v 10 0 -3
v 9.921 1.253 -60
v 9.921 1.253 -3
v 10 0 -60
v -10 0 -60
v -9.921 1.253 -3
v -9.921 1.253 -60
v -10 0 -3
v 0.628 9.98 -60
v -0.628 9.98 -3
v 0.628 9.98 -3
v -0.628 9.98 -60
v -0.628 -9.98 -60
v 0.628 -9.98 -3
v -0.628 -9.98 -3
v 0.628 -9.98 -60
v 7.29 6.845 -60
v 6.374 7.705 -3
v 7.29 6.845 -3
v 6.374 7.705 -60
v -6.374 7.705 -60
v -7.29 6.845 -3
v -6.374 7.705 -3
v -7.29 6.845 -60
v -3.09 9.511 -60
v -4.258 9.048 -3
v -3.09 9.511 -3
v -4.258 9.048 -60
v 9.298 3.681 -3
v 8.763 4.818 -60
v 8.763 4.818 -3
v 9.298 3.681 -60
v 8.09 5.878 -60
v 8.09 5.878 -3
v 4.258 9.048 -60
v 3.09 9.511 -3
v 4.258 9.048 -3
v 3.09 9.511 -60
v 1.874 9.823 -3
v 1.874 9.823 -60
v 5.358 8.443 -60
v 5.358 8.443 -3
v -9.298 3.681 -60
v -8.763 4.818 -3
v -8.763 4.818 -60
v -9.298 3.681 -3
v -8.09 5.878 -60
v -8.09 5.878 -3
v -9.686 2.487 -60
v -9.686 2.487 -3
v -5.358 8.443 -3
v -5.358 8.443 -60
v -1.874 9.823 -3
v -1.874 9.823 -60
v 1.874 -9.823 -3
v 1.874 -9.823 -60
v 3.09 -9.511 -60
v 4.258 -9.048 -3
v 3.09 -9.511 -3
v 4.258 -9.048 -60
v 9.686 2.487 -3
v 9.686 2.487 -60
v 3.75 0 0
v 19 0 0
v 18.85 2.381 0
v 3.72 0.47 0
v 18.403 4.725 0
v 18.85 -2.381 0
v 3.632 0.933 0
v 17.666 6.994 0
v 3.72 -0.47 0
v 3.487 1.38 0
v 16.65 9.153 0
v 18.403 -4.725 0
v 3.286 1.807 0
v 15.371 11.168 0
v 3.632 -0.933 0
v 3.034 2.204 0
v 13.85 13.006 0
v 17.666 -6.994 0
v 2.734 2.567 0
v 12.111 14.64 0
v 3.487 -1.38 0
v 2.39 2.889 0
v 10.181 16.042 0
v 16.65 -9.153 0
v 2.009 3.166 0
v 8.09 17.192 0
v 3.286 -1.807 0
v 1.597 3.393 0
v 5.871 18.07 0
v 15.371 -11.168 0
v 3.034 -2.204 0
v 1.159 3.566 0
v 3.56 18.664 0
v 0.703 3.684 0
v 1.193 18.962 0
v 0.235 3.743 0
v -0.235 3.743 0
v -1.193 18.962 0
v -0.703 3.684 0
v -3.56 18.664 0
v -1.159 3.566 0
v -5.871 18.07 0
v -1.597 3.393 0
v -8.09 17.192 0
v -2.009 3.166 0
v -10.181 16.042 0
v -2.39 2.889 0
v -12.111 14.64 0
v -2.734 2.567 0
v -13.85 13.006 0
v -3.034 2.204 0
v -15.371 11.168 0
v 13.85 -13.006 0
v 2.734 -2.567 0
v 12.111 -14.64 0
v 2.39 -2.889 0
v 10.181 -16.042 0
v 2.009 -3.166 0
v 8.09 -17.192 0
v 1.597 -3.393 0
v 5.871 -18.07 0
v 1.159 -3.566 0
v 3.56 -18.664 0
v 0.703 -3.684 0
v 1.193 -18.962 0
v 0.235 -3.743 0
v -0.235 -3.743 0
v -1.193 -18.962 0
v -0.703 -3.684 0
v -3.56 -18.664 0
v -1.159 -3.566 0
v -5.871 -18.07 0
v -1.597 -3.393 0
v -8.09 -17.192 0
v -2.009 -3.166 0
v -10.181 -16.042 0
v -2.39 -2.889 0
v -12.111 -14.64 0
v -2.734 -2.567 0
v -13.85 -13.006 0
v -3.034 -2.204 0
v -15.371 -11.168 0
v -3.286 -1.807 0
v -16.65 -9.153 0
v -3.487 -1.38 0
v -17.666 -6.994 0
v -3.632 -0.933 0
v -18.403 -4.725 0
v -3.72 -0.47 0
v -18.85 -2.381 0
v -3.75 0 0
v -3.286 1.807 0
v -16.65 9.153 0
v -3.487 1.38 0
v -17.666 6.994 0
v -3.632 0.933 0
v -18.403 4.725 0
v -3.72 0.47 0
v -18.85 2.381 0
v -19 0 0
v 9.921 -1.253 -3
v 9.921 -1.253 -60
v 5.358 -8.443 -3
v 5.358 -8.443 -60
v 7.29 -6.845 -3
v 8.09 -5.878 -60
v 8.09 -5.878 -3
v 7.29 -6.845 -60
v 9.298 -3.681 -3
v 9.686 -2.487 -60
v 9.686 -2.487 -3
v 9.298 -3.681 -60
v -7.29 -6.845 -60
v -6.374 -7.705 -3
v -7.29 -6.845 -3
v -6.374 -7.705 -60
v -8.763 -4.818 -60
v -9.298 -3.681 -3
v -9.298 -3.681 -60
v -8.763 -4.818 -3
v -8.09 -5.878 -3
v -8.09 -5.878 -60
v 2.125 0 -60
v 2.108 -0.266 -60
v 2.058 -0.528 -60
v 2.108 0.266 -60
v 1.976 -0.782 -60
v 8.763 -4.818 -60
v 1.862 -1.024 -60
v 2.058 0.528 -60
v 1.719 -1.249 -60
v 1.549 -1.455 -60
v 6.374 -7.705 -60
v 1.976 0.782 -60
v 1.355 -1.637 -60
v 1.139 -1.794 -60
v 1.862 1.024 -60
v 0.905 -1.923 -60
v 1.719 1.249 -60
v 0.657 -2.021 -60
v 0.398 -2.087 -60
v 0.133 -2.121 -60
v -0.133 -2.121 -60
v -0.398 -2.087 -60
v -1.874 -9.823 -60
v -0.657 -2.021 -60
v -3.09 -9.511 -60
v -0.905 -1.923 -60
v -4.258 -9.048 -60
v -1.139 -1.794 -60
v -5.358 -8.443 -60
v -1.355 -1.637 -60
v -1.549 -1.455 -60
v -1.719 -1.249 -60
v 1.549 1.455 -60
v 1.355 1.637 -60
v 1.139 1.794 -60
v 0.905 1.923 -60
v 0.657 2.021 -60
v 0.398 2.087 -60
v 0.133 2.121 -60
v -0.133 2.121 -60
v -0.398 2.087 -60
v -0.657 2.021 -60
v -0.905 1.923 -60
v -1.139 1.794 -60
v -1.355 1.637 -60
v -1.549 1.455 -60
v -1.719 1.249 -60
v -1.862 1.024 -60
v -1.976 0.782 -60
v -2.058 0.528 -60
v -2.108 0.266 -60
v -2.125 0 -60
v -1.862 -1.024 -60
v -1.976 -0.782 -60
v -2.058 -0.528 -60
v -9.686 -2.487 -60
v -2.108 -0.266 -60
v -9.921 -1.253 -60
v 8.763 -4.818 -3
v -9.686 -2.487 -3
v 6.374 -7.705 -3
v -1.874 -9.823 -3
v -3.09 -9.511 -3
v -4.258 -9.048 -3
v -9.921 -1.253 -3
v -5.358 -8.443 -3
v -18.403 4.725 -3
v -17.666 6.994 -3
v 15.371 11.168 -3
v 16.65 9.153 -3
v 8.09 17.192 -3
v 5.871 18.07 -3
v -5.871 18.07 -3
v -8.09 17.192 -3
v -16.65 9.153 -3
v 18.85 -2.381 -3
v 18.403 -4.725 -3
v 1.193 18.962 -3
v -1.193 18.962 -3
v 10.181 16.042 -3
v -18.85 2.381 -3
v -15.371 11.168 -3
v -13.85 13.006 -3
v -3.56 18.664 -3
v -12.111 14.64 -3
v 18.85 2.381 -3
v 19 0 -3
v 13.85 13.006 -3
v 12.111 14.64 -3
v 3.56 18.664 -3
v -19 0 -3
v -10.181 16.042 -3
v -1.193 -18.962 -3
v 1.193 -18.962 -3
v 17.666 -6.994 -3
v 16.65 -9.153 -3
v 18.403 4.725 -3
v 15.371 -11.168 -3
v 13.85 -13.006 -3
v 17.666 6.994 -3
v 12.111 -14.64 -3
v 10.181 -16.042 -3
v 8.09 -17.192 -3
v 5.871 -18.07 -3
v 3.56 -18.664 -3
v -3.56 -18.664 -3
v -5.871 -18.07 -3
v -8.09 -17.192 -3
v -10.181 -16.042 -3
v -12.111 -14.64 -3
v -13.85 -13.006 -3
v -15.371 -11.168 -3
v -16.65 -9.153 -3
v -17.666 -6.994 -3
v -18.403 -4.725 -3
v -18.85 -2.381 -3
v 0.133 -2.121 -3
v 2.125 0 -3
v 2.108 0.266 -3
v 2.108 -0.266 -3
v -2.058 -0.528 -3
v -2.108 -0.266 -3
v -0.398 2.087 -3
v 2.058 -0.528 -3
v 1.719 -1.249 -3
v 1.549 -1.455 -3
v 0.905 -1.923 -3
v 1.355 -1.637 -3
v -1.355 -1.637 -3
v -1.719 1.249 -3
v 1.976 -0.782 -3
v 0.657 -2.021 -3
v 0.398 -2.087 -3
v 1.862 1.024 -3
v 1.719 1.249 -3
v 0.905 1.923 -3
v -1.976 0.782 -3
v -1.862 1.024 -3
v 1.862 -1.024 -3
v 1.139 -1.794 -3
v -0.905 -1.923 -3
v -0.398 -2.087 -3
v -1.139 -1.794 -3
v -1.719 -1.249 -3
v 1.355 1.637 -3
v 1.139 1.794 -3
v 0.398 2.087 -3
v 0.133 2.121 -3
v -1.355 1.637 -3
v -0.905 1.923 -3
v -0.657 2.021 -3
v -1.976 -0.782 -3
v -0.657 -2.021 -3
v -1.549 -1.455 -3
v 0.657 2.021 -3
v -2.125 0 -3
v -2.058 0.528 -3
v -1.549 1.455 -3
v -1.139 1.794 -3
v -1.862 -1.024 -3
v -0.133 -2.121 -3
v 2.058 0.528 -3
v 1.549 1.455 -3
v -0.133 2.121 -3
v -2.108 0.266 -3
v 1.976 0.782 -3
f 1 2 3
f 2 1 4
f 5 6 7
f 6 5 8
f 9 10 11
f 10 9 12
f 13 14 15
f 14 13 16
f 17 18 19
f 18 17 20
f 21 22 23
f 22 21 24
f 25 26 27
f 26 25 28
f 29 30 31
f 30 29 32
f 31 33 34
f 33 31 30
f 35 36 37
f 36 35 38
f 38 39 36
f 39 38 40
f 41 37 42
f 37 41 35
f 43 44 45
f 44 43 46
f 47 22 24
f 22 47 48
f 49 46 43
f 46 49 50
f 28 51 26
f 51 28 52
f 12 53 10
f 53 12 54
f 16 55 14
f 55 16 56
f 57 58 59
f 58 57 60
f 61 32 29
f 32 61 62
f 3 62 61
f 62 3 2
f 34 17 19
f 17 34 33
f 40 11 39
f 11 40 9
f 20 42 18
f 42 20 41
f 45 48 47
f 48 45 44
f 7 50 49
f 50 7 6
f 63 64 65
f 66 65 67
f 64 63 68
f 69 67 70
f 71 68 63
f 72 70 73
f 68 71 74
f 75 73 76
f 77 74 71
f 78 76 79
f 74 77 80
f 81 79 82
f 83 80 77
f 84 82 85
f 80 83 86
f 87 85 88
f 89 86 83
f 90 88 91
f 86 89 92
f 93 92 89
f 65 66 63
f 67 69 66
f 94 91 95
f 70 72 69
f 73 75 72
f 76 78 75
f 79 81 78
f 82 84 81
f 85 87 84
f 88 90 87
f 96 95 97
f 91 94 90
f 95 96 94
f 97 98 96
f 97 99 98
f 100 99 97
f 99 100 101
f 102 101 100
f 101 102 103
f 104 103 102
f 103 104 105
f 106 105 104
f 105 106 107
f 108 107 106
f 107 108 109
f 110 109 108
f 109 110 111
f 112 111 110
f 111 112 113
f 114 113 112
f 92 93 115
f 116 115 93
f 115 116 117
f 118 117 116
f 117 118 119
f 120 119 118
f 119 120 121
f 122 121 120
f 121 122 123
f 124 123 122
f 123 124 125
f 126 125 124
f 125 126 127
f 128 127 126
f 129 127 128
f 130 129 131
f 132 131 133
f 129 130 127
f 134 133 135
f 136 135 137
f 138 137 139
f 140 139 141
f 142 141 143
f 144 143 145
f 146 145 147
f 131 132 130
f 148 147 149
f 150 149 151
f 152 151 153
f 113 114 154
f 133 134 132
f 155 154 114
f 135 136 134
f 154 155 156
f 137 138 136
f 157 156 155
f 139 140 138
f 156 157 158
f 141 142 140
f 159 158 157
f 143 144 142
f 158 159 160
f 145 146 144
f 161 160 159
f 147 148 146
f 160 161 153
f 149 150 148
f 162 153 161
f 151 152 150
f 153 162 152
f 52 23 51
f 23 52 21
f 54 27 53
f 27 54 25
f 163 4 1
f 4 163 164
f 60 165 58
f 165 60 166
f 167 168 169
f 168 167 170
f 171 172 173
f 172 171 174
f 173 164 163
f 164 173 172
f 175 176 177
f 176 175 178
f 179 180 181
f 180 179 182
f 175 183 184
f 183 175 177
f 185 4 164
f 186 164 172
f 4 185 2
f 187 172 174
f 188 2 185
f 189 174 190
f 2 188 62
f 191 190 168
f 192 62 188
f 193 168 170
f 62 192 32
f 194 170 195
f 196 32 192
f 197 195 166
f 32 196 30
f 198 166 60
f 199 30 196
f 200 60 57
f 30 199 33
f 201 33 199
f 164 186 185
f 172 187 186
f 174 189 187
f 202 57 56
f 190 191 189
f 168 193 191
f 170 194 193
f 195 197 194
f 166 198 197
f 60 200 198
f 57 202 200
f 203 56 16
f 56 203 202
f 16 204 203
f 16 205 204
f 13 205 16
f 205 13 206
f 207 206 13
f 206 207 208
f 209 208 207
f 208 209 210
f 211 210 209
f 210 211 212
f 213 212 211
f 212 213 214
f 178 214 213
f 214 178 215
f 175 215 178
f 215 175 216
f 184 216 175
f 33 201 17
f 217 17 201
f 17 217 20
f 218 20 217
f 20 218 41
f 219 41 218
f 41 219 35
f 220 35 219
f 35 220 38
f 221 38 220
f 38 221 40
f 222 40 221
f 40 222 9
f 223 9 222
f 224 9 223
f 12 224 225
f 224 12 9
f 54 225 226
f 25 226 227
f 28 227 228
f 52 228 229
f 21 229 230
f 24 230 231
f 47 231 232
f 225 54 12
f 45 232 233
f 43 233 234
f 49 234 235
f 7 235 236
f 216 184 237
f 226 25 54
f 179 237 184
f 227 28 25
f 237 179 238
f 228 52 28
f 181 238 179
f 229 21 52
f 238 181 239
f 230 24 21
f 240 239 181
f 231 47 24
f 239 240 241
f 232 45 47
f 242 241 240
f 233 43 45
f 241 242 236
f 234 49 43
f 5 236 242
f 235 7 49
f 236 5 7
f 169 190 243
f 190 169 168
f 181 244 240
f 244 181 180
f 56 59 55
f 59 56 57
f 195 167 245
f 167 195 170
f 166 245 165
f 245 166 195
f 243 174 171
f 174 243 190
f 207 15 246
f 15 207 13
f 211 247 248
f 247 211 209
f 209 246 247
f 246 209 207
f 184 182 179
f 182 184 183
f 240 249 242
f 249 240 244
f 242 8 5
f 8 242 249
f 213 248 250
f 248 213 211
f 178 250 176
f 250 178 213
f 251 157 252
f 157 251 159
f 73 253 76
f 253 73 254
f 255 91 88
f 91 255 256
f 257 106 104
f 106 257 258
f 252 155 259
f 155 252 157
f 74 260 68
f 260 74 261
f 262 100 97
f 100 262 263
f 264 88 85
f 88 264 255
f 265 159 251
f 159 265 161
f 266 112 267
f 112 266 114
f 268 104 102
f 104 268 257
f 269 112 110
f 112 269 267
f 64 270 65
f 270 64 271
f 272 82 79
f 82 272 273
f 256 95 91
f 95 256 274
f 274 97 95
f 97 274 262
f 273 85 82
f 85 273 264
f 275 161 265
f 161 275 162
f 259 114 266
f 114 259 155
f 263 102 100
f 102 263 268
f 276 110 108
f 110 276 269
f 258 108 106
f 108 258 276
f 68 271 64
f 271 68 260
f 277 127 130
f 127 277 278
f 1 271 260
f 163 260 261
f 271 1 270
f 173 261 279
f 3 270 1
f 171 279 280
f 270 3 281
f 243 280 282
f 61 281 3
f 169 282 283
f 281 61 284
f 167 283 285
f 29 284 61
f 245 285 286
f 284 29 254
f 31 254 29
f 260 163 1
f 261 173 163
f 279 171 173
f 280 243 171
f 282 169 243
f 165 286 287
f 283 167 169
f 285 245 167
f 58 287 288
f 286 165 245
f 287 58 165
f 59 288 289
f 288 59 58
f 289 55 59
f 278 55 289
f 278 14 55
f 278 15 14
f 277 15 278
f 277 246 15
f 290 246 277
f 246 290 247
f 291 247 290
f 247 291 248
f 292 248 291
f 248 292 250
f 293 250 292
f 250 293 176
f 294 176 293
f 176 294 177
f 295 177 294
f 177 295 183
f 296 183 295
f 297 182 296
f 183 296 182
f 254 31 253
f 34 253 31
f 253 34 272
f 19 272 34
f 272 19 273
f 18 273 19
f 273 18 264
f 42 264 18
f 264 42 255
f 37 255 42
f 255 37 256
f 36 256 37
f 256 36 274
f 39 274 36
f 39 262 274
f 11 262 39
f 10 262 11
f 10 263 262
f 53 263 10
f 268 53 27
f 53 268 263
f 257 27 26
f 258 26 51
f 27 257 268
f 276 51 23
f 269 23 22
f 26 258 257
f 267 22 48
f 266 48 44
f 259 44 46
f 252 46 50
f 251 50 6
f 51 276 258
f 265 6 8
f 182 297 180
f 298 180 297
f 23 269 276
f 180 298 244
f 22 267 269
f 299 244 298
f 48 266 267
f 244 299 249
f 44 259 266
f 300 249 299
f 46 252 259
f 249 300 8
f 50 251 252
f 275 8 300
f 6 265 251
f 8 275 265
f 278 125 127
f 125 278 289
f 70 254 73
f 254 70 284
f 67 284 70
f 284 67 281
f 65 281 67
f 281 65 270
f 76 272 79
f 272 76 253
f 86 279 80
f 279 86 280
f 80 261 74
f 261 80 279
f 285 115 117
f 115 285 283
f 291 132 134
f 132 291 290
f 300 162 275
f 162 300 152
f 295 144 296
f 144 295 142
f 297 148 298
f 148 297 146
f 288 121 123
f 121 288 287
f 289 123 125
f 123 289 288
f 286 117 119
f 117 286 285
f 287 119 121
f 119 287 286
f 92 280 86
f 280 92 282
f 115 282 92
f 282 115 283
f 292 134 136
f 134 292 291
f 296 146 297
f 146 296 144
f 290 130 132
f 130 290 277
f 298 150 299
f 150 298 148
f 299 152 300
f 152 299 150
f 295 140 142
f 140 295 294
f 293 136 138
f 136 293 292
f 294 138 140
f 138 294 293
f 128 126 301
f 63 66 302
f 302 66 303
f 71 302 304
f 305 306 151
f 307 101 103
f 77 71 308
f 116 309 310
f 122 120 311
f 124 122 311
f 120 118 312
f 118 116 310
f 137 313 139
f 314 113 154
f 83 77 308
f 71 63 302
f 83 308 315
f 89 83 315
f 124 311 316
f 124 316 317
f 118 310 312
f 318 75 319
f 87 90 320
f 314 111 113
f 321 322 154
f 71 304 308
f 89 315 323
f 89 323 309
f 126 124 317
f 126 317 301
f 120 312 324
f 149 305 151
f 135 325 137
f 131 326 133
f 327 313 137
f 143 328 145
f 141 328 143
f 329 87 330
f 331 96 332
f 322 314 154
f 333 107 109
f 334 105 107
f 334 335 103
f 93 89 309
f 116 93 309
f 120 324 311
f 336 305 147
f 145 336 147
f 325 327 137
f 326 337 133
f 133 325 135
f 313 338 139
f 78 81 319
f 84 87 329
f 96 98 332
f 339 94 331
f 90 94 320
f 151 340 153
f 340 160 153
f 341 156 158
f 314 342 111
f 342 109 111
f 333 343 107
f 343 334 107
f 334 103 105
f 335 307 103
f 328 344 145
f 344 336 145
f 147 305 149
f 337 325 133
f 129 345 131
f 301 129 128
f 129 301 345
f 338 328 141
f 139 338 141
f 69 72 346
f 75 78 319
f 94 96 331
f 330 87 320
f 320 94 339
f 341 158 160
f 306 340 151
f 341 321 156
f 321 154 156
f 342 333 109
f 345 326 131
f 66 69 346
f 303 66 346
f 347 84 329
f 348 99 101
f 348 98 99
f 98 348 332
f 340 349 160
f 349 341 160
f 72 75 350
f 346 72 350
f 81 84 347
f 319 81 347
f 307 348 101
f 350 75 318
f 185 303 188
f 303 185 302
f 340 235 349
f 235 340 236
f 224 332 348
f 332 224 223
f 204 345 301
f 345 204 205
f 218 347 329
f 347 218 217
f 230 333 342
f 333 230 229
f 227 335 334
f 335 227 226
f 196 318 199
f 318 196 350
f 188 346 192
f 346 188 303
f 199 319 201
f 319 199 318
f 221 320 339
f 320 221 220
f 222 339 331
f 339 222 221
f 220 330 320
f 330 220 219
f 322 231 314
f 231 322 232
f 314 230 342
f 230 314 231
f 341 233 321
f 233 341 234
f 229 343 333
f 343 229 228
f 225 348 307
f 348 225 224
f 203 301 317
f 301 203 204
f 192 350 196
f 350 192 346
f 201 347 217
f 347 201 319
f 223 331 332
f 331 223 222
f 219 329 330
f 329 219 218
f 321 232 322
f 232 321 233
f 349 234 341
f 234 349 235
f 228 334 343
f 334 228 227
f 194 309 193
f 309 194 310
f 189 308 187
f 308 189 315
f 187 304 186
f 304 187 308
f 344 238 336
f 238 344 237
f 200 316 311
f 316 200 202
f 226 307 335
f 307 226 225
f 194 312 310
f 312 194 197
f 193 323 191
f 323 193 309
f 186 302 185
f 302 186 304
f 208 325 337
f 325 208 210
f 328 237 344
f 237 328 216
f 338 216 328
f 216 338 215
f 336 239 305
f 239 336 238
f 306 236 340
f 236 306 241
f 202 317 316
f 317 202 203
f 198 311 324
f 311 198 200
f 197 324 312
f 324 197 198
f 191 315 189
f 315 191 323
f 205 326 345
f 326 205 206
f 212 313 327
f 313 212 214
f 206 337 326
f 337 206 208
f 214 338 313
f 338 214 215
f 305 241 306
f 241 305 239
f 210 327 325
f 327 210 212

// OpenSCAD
$fn = 50;


difference() {
	union() {
		translate(v = [0, 0, -60.0000000000]) {
			cylinder(h = 60, r = 10.0000000000);
		}
		translate(v = [0, 0, -3.0000000000]) {
			cylinder(h = 3, r = 19.0000000000);
		}
	}
	union() {
		translate(v = [0, 0, 0]) {
			rotate(a = [0, 0, 0]) {
				difference() {
					union() {
						#translate(v = [0, 0, -60.0000000000]) {
							cylinder(h = 60, r = 2.0000000000);
						}
						#translate(v = [0, 0, -3]) {
							cylinder(h = 3, r1 = 2.1250000000, r2 = 3.7500000000);
						}
						#translate(v = [0, 0, -60.0000000000]) {
							cylinder(h = 60, r = 2.1250000000);
						}
						#translate(v = [0, 0, -60.0000000000]) {
							cylinder(h = 60, r = 2.0000000000);
						}
					}
					union();
				}
			}
		}
	}
}
